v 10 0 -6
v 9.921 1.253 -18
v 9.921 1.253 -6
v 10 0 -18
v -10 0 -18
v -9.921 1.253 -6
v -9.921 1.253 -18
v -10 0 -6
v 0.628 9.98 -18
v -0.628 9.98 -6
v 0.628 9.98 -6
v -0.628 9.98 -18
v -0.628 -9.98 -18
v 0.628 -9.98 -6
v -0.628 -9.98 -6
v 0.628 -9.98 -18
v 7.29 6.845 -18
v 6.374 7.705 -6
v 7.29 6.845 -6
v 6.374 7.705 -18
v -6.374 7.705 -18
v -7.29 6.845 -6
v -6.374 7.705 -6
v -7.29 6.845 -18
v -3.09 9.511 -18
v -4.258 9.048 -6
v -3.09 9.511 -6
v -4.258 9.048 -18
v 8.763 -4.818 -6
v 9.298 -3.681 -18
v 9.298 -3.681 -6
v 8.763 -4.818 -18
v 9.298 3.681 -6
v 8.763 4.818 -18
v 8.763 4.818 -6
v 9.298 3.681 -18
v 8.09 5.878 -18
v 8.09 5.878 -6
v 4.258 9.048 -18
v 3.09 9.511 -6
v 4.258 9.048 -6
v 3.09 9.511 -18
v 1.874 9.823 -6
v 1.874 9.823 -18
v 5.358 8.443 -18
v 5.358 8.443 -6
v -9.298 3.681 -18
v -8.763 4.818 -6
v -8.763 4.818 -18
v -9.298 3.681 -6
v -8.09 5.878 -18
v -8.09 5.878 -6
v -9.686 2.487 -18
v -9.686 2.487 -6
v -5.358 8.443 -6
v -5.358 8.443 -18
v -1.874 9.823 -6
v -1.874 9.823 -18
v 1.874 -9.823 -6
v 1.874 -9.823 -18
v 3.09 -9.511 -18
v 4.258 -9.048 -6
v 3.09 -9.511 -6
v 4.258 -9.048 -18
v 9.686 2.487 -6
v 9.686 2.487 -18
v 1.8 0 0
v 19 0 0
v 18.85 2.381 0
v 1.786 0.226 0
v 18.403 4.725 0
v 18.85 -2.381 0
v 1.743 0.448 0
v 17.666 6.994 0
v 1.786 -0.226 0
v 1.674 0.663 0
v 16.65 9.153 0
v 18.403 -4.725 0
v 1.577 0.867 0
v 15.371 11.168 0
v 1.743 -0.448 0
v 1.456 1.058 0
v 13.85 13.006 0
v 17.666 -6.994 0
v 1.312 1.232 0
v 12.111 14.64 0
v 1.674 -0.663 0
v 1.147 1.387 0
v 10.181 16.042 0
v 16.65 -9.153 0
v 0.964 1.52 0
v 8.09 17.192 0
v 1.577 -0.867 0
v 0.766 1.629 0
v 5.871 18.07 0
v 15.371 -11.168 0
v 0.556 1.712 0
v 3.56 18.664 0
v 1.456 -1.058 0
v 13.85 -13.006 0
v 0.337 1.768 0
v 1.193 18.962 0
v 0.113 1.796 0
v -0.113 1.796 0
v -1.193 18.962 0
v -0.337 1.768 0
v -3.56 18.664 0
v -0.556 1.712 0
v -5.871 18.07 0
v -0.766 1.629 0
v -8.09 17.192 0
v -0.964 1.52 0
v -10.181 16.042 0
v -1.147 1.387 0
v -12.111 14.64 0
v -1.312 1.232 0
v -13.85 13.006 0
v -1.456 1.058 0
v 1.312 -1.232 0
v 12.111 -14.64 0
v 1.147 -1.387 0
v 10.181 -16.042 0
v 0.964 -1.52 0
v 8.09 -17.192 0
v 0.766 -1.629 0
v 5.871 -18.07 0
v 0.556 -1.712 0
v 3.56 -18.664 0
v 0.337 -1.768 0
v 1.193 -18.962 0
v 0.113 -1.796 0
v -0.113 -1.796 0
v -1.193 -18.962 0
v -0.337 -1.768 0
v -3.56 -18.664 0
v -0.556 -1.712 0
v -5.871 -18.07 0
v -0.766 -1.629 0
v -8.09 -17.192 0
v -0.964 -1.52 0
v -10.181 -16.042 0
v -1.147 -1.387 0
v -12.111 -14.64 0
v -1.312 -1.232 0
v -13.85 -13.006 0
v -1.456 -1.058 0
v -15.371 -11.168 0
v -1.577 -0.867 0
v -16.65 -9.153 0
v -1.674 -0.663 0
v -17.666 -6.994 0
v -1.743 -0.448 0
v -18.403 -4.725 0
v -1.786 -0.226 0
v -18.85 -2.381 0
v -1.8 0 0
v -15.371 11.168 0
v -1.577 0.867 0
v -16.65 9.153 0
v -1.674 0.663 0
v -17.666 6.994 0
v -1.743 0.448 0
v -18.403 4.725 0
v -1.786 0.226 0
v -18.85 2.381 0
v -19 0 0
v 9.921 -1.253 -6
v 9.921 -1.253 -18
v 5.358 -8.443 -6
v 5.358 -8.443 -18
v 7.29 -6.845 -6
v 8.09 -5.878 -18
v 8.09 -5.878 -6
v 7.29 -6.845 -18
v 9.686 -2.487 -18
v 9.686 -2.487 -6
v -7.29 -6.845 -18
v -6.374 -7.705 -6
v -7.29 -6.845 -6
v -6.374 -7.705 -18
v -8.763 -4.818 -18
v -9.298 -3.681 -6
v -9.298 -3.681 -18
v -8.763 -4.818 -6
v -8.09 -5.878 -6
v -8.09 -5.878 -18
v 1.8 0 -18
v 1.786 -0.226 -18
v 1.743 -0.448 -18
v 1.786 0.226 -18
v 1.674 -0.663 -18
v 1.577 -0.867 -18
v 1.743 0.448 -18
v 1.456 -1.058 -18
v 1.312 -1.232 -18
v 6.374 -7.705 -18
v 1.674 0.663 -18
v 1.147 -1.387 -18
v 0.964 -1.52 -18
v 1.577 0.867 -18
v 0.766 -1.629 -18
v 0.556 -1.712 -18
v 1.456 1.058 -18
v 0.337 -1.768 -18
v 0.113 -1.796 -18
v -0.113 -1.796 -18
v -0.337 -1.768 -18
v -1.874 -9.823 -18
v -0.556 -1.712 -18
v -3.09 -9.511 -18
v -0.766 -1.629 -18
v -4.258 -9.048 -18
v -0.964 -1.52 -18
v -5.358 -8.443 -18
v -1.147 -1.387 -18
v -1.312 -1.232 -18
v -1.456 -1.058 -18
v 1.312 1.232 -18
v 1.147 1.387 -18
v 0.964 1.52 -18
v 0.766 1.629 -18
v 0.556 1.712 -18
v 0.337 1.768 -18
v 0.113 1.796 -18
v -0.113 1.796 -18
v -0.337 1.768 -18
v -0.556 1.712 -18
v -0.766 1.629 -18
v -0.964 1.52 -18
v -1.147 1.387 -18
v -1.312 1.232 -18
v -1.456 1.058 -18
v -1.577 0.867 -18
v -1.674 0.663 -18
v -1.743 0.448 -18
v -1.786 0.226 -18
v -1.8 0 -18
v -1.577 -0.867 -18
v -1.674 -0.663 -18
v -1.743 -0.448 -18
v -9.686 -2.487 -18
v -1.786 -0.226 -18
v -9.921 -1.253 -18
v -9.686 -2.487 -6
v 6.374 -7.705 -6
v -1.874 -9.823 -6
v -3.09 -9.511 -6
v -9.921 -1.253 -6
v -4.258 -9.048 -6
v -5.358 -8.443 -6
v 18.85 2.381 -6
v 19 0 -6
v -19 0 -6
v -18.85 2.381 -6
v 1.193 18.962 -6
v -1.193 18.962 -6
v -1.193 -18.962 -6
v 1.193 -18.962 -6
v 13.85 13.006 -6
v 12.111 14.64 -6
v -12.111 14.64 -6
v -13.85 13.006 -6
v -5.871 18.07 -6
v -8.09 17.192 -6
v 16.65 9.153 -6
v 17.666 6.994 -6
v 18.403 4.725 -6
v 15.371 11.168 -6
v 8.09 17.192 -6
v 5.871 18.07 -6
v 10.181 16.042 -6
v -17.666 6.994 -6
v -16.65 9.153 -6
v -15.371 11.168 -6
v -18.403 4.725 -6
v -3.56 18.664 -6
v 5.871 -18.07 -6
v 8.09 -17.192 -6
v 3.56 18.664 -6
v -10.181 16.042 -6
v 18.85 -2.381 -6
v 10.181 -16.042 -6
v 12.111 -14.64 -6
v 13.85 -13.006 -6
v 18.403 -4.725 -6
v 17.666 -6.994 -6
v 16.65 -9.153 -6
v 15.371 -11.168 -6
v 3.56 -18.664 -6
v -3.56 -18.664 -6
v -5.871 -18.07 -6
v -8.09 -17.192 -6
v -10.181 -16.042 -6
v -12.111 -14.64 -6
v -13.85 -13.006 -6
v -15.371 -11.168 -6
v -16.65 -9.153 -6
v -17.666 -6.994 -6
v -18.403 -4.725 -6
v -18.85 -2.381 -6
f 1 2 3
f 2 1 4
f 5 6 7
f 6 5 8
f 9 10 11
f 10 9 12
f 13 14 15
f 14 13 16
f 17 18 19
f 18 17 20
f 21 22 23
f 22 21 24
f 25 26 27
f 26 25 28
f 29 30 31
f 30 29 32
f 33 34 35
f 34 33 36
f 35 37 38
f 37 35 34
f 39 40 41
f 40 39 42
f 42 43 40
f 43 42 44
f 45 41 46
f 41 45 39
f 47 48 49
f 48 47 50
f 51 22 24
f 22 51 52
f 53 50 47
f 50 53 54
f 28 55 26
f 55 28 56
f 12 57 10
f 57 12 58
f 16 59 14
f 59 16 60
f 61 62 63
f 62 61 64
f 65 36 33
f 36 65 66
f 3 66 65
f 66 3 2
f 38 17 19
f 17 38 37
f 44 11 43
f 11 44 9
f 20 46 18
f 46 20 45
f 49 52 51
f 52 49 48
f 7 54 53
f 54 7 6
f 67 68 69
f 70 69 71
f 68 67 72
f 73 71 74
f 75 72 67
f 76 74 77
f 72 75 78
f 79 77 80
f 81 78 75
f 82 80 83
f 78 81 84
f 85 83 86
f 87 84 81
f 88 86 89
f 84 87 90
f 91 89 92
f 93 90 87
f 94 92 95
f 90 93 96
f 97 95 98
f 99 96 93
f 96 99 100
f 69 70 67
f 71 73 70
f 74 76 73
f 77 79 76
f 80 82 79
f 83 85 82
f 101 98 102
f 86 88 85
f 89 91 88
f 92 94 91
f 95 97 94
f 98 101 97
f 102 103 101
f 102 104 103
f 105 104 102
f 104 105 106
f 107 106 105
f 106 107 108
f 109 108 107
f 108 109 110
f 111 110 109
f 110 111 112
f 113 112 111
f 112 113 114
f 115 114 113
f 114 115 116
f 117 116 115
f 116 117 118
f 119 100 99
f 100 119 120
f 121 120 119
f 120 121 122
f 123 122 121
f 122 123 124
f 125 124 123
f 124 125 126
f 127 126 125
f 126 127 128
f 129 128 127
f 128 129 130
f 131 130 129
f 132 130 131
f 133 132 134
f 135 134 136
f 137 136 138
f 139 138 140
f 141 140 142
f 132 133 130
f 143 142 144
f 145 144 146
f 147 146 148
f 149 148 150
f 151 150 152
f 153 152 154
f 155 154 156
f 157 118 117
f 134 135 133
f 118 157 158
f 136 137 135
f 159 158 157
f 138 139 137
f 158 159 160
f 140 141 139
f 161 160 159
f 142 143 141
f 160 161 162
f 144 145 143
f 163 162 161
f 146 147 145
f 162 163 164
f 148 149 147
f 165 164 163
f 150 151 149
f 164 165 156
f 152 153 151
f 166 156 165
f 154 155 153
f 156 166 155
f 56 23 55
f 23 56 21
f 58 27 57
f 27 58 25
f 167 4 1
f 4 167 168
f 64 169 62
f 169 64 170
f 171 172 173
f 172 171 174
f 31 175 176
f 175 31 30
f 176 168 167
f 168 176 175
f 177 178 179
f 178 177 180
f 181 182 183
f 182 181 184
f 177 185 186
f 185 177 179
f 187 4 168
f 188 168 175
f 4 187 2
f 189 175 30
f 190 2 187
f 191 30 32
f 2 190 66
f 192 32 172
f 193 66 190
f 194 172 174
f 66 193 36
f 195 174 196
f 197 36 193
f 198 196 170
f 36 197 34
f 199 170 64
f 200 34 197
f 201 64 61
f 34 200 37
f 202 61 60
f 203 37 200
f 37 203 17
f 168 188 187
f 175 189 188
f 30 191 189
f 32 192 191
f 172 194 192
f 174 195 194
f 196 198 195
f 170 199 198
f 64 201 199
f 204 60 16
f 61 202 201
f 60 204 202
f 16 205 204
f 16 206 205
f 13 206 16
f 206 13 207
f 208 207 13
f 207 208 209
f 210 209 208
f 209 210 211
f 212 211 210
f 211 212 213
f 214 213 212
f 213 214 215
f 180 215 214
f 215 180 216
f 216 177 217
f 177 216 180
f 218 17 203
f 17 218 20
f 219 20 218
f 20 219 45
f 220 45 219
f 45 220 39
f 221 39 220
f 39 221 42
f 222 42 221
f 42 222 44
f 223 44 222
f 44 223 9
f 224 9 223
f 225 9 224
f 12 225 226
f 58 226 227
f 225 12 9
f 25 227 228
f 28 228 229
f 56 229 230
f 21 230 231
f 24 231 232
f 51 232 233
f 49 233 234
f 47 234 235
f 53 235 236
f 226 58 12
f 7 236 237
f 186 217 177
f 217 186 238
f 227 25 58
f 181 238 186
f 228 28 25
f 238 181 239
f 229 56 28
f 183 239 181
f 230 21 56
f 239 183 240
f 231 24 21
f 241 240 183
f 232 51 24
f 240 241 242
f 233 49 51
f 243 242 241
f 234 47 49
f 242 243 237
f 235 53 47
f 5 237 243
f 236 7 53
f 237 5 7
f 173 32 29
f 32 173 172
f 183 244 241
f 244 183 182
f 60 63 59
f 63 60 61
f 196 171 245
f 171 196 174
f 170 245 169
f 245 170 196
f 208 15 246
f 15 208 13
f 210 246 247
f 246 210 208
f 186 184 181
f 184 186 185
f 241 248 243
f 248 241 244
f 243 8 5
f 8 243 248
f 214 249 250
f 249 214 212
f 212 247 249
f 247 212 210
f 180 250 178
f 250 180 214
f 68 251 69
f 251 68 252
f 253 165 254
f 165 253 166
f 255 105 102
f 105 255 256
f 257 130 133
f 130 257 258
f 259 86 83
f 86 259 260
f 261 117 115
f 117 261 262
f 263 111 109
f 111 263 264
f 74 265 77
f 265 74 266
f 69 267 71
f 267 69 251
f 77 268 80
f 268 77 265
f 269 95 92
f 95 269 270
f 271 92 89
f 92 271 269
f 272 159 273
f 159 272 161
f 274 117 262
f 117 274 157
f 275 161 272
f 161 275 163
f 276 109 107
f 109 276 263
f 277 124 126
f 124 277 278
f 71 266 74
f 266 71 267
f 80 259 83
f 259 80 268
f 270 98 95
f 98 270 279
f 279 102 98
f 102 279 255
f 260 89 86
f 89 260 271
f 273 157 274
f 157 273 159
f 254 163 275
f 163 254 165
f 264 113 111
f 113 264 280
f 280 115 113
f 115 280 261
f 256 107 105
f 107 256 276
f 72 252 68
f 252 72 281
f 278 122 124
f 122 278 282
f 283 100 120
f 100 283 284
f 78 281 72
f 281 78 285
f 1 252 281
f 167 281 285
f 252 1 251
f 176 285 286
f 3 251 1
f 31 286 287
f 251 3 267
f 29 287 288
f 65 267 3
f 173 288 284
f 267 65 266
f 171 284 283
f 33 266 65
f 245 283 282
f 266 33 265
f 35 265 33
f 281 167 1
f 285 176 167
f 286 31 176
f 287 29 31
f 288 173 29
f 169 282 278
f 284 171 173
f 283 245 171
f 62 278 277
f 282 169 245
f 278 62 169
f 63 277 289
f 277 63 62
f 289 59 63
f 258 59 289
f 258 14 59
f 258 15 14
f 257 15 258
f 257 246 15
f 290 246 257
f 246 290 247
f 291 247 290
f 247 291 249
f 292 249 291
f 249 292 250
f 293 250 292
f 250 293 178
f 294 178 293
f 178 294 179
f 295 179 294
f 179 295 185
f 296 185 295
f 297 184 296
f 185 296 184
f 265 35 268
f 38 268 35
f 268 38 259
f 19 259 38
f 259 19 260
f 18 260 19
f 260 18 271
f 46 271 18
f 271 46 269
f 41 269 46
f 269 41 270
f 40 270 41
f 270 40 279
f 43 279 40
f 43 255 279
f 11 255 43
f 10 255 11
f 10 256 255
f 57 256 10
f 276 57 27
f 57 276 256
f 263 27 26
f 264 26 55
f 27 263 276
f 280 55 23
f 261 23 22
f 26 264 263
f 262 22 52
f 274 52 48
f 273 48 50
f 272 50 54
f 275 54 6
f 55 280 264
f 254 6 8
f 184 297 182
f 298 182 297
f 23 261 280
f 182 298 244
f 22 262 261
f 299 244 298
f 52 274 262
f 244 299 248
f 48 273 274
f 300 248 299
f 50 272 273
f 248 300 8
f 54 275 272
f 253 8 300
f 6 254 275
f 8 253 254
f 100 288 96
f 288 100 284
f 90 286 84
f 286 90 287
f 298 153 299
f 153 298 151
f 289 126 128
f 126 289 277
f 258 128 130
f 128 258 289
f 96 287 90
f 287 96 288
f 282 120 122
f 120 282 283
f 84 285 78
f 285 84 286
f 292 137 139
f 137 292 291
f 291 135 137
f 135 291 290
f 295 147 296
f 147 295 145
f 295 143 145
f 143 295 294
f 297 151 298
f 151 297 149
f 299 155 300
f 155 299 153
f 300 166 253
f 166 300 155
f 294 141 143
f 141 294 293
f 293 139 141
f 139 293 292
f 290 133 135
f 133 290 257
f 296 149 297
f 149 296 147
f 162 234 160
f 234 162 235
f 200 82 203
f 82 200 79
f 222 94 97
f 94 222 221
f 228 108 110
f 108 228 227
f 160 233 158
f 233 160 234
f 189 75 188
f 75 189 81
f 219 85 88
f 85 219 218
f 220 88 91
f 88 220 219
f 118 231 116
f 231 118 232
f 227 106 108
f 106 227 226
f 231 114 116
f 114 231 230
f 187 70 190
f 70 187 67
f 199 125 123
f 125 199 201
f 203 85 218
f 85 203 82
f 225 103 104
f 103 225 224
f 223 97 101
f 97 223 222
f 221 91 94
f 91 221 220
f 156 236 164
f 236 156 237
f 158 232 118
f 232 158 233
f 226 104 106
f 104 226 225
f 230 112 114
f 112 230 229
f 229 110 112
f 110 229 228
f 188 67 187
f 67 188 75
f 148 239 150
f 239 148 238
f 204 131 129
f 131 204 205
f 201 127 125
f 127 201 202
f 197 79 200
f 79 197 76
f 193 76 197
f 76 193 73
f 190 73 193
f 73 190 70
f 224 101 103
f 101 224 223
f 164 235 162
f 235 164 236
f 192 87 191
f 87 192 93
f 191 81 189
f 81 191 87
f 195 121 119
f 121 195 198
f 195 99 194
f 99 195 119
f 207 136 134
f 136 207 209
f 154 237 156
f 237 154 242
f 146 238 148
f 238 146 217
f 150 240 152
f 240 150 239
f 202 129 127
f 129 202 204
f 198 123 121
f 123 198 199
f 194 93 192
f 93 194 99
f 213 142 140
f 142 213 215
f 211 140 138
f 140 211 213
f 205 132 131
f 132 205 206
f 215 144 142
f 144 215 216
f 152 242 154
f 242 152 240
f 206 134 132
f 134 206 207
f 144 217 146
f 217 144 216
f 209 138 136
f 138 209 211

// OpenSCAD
$fn = 50;


difference() {
	union() {
		translate(v = [0, 0, -18.0000000000]) {
			cylinder(h = 18, r = 10.0000000000);
		}
		translate(v = [0, 0, -6.0000000000]) {
			cylinder(h = 6, r = 19.0000000000);
		}
	}
	union() {
		#translate(v = [0, 0, -18]) {
			cylinder(h = 18, r = 1.8000000000);
		}
	}
}
